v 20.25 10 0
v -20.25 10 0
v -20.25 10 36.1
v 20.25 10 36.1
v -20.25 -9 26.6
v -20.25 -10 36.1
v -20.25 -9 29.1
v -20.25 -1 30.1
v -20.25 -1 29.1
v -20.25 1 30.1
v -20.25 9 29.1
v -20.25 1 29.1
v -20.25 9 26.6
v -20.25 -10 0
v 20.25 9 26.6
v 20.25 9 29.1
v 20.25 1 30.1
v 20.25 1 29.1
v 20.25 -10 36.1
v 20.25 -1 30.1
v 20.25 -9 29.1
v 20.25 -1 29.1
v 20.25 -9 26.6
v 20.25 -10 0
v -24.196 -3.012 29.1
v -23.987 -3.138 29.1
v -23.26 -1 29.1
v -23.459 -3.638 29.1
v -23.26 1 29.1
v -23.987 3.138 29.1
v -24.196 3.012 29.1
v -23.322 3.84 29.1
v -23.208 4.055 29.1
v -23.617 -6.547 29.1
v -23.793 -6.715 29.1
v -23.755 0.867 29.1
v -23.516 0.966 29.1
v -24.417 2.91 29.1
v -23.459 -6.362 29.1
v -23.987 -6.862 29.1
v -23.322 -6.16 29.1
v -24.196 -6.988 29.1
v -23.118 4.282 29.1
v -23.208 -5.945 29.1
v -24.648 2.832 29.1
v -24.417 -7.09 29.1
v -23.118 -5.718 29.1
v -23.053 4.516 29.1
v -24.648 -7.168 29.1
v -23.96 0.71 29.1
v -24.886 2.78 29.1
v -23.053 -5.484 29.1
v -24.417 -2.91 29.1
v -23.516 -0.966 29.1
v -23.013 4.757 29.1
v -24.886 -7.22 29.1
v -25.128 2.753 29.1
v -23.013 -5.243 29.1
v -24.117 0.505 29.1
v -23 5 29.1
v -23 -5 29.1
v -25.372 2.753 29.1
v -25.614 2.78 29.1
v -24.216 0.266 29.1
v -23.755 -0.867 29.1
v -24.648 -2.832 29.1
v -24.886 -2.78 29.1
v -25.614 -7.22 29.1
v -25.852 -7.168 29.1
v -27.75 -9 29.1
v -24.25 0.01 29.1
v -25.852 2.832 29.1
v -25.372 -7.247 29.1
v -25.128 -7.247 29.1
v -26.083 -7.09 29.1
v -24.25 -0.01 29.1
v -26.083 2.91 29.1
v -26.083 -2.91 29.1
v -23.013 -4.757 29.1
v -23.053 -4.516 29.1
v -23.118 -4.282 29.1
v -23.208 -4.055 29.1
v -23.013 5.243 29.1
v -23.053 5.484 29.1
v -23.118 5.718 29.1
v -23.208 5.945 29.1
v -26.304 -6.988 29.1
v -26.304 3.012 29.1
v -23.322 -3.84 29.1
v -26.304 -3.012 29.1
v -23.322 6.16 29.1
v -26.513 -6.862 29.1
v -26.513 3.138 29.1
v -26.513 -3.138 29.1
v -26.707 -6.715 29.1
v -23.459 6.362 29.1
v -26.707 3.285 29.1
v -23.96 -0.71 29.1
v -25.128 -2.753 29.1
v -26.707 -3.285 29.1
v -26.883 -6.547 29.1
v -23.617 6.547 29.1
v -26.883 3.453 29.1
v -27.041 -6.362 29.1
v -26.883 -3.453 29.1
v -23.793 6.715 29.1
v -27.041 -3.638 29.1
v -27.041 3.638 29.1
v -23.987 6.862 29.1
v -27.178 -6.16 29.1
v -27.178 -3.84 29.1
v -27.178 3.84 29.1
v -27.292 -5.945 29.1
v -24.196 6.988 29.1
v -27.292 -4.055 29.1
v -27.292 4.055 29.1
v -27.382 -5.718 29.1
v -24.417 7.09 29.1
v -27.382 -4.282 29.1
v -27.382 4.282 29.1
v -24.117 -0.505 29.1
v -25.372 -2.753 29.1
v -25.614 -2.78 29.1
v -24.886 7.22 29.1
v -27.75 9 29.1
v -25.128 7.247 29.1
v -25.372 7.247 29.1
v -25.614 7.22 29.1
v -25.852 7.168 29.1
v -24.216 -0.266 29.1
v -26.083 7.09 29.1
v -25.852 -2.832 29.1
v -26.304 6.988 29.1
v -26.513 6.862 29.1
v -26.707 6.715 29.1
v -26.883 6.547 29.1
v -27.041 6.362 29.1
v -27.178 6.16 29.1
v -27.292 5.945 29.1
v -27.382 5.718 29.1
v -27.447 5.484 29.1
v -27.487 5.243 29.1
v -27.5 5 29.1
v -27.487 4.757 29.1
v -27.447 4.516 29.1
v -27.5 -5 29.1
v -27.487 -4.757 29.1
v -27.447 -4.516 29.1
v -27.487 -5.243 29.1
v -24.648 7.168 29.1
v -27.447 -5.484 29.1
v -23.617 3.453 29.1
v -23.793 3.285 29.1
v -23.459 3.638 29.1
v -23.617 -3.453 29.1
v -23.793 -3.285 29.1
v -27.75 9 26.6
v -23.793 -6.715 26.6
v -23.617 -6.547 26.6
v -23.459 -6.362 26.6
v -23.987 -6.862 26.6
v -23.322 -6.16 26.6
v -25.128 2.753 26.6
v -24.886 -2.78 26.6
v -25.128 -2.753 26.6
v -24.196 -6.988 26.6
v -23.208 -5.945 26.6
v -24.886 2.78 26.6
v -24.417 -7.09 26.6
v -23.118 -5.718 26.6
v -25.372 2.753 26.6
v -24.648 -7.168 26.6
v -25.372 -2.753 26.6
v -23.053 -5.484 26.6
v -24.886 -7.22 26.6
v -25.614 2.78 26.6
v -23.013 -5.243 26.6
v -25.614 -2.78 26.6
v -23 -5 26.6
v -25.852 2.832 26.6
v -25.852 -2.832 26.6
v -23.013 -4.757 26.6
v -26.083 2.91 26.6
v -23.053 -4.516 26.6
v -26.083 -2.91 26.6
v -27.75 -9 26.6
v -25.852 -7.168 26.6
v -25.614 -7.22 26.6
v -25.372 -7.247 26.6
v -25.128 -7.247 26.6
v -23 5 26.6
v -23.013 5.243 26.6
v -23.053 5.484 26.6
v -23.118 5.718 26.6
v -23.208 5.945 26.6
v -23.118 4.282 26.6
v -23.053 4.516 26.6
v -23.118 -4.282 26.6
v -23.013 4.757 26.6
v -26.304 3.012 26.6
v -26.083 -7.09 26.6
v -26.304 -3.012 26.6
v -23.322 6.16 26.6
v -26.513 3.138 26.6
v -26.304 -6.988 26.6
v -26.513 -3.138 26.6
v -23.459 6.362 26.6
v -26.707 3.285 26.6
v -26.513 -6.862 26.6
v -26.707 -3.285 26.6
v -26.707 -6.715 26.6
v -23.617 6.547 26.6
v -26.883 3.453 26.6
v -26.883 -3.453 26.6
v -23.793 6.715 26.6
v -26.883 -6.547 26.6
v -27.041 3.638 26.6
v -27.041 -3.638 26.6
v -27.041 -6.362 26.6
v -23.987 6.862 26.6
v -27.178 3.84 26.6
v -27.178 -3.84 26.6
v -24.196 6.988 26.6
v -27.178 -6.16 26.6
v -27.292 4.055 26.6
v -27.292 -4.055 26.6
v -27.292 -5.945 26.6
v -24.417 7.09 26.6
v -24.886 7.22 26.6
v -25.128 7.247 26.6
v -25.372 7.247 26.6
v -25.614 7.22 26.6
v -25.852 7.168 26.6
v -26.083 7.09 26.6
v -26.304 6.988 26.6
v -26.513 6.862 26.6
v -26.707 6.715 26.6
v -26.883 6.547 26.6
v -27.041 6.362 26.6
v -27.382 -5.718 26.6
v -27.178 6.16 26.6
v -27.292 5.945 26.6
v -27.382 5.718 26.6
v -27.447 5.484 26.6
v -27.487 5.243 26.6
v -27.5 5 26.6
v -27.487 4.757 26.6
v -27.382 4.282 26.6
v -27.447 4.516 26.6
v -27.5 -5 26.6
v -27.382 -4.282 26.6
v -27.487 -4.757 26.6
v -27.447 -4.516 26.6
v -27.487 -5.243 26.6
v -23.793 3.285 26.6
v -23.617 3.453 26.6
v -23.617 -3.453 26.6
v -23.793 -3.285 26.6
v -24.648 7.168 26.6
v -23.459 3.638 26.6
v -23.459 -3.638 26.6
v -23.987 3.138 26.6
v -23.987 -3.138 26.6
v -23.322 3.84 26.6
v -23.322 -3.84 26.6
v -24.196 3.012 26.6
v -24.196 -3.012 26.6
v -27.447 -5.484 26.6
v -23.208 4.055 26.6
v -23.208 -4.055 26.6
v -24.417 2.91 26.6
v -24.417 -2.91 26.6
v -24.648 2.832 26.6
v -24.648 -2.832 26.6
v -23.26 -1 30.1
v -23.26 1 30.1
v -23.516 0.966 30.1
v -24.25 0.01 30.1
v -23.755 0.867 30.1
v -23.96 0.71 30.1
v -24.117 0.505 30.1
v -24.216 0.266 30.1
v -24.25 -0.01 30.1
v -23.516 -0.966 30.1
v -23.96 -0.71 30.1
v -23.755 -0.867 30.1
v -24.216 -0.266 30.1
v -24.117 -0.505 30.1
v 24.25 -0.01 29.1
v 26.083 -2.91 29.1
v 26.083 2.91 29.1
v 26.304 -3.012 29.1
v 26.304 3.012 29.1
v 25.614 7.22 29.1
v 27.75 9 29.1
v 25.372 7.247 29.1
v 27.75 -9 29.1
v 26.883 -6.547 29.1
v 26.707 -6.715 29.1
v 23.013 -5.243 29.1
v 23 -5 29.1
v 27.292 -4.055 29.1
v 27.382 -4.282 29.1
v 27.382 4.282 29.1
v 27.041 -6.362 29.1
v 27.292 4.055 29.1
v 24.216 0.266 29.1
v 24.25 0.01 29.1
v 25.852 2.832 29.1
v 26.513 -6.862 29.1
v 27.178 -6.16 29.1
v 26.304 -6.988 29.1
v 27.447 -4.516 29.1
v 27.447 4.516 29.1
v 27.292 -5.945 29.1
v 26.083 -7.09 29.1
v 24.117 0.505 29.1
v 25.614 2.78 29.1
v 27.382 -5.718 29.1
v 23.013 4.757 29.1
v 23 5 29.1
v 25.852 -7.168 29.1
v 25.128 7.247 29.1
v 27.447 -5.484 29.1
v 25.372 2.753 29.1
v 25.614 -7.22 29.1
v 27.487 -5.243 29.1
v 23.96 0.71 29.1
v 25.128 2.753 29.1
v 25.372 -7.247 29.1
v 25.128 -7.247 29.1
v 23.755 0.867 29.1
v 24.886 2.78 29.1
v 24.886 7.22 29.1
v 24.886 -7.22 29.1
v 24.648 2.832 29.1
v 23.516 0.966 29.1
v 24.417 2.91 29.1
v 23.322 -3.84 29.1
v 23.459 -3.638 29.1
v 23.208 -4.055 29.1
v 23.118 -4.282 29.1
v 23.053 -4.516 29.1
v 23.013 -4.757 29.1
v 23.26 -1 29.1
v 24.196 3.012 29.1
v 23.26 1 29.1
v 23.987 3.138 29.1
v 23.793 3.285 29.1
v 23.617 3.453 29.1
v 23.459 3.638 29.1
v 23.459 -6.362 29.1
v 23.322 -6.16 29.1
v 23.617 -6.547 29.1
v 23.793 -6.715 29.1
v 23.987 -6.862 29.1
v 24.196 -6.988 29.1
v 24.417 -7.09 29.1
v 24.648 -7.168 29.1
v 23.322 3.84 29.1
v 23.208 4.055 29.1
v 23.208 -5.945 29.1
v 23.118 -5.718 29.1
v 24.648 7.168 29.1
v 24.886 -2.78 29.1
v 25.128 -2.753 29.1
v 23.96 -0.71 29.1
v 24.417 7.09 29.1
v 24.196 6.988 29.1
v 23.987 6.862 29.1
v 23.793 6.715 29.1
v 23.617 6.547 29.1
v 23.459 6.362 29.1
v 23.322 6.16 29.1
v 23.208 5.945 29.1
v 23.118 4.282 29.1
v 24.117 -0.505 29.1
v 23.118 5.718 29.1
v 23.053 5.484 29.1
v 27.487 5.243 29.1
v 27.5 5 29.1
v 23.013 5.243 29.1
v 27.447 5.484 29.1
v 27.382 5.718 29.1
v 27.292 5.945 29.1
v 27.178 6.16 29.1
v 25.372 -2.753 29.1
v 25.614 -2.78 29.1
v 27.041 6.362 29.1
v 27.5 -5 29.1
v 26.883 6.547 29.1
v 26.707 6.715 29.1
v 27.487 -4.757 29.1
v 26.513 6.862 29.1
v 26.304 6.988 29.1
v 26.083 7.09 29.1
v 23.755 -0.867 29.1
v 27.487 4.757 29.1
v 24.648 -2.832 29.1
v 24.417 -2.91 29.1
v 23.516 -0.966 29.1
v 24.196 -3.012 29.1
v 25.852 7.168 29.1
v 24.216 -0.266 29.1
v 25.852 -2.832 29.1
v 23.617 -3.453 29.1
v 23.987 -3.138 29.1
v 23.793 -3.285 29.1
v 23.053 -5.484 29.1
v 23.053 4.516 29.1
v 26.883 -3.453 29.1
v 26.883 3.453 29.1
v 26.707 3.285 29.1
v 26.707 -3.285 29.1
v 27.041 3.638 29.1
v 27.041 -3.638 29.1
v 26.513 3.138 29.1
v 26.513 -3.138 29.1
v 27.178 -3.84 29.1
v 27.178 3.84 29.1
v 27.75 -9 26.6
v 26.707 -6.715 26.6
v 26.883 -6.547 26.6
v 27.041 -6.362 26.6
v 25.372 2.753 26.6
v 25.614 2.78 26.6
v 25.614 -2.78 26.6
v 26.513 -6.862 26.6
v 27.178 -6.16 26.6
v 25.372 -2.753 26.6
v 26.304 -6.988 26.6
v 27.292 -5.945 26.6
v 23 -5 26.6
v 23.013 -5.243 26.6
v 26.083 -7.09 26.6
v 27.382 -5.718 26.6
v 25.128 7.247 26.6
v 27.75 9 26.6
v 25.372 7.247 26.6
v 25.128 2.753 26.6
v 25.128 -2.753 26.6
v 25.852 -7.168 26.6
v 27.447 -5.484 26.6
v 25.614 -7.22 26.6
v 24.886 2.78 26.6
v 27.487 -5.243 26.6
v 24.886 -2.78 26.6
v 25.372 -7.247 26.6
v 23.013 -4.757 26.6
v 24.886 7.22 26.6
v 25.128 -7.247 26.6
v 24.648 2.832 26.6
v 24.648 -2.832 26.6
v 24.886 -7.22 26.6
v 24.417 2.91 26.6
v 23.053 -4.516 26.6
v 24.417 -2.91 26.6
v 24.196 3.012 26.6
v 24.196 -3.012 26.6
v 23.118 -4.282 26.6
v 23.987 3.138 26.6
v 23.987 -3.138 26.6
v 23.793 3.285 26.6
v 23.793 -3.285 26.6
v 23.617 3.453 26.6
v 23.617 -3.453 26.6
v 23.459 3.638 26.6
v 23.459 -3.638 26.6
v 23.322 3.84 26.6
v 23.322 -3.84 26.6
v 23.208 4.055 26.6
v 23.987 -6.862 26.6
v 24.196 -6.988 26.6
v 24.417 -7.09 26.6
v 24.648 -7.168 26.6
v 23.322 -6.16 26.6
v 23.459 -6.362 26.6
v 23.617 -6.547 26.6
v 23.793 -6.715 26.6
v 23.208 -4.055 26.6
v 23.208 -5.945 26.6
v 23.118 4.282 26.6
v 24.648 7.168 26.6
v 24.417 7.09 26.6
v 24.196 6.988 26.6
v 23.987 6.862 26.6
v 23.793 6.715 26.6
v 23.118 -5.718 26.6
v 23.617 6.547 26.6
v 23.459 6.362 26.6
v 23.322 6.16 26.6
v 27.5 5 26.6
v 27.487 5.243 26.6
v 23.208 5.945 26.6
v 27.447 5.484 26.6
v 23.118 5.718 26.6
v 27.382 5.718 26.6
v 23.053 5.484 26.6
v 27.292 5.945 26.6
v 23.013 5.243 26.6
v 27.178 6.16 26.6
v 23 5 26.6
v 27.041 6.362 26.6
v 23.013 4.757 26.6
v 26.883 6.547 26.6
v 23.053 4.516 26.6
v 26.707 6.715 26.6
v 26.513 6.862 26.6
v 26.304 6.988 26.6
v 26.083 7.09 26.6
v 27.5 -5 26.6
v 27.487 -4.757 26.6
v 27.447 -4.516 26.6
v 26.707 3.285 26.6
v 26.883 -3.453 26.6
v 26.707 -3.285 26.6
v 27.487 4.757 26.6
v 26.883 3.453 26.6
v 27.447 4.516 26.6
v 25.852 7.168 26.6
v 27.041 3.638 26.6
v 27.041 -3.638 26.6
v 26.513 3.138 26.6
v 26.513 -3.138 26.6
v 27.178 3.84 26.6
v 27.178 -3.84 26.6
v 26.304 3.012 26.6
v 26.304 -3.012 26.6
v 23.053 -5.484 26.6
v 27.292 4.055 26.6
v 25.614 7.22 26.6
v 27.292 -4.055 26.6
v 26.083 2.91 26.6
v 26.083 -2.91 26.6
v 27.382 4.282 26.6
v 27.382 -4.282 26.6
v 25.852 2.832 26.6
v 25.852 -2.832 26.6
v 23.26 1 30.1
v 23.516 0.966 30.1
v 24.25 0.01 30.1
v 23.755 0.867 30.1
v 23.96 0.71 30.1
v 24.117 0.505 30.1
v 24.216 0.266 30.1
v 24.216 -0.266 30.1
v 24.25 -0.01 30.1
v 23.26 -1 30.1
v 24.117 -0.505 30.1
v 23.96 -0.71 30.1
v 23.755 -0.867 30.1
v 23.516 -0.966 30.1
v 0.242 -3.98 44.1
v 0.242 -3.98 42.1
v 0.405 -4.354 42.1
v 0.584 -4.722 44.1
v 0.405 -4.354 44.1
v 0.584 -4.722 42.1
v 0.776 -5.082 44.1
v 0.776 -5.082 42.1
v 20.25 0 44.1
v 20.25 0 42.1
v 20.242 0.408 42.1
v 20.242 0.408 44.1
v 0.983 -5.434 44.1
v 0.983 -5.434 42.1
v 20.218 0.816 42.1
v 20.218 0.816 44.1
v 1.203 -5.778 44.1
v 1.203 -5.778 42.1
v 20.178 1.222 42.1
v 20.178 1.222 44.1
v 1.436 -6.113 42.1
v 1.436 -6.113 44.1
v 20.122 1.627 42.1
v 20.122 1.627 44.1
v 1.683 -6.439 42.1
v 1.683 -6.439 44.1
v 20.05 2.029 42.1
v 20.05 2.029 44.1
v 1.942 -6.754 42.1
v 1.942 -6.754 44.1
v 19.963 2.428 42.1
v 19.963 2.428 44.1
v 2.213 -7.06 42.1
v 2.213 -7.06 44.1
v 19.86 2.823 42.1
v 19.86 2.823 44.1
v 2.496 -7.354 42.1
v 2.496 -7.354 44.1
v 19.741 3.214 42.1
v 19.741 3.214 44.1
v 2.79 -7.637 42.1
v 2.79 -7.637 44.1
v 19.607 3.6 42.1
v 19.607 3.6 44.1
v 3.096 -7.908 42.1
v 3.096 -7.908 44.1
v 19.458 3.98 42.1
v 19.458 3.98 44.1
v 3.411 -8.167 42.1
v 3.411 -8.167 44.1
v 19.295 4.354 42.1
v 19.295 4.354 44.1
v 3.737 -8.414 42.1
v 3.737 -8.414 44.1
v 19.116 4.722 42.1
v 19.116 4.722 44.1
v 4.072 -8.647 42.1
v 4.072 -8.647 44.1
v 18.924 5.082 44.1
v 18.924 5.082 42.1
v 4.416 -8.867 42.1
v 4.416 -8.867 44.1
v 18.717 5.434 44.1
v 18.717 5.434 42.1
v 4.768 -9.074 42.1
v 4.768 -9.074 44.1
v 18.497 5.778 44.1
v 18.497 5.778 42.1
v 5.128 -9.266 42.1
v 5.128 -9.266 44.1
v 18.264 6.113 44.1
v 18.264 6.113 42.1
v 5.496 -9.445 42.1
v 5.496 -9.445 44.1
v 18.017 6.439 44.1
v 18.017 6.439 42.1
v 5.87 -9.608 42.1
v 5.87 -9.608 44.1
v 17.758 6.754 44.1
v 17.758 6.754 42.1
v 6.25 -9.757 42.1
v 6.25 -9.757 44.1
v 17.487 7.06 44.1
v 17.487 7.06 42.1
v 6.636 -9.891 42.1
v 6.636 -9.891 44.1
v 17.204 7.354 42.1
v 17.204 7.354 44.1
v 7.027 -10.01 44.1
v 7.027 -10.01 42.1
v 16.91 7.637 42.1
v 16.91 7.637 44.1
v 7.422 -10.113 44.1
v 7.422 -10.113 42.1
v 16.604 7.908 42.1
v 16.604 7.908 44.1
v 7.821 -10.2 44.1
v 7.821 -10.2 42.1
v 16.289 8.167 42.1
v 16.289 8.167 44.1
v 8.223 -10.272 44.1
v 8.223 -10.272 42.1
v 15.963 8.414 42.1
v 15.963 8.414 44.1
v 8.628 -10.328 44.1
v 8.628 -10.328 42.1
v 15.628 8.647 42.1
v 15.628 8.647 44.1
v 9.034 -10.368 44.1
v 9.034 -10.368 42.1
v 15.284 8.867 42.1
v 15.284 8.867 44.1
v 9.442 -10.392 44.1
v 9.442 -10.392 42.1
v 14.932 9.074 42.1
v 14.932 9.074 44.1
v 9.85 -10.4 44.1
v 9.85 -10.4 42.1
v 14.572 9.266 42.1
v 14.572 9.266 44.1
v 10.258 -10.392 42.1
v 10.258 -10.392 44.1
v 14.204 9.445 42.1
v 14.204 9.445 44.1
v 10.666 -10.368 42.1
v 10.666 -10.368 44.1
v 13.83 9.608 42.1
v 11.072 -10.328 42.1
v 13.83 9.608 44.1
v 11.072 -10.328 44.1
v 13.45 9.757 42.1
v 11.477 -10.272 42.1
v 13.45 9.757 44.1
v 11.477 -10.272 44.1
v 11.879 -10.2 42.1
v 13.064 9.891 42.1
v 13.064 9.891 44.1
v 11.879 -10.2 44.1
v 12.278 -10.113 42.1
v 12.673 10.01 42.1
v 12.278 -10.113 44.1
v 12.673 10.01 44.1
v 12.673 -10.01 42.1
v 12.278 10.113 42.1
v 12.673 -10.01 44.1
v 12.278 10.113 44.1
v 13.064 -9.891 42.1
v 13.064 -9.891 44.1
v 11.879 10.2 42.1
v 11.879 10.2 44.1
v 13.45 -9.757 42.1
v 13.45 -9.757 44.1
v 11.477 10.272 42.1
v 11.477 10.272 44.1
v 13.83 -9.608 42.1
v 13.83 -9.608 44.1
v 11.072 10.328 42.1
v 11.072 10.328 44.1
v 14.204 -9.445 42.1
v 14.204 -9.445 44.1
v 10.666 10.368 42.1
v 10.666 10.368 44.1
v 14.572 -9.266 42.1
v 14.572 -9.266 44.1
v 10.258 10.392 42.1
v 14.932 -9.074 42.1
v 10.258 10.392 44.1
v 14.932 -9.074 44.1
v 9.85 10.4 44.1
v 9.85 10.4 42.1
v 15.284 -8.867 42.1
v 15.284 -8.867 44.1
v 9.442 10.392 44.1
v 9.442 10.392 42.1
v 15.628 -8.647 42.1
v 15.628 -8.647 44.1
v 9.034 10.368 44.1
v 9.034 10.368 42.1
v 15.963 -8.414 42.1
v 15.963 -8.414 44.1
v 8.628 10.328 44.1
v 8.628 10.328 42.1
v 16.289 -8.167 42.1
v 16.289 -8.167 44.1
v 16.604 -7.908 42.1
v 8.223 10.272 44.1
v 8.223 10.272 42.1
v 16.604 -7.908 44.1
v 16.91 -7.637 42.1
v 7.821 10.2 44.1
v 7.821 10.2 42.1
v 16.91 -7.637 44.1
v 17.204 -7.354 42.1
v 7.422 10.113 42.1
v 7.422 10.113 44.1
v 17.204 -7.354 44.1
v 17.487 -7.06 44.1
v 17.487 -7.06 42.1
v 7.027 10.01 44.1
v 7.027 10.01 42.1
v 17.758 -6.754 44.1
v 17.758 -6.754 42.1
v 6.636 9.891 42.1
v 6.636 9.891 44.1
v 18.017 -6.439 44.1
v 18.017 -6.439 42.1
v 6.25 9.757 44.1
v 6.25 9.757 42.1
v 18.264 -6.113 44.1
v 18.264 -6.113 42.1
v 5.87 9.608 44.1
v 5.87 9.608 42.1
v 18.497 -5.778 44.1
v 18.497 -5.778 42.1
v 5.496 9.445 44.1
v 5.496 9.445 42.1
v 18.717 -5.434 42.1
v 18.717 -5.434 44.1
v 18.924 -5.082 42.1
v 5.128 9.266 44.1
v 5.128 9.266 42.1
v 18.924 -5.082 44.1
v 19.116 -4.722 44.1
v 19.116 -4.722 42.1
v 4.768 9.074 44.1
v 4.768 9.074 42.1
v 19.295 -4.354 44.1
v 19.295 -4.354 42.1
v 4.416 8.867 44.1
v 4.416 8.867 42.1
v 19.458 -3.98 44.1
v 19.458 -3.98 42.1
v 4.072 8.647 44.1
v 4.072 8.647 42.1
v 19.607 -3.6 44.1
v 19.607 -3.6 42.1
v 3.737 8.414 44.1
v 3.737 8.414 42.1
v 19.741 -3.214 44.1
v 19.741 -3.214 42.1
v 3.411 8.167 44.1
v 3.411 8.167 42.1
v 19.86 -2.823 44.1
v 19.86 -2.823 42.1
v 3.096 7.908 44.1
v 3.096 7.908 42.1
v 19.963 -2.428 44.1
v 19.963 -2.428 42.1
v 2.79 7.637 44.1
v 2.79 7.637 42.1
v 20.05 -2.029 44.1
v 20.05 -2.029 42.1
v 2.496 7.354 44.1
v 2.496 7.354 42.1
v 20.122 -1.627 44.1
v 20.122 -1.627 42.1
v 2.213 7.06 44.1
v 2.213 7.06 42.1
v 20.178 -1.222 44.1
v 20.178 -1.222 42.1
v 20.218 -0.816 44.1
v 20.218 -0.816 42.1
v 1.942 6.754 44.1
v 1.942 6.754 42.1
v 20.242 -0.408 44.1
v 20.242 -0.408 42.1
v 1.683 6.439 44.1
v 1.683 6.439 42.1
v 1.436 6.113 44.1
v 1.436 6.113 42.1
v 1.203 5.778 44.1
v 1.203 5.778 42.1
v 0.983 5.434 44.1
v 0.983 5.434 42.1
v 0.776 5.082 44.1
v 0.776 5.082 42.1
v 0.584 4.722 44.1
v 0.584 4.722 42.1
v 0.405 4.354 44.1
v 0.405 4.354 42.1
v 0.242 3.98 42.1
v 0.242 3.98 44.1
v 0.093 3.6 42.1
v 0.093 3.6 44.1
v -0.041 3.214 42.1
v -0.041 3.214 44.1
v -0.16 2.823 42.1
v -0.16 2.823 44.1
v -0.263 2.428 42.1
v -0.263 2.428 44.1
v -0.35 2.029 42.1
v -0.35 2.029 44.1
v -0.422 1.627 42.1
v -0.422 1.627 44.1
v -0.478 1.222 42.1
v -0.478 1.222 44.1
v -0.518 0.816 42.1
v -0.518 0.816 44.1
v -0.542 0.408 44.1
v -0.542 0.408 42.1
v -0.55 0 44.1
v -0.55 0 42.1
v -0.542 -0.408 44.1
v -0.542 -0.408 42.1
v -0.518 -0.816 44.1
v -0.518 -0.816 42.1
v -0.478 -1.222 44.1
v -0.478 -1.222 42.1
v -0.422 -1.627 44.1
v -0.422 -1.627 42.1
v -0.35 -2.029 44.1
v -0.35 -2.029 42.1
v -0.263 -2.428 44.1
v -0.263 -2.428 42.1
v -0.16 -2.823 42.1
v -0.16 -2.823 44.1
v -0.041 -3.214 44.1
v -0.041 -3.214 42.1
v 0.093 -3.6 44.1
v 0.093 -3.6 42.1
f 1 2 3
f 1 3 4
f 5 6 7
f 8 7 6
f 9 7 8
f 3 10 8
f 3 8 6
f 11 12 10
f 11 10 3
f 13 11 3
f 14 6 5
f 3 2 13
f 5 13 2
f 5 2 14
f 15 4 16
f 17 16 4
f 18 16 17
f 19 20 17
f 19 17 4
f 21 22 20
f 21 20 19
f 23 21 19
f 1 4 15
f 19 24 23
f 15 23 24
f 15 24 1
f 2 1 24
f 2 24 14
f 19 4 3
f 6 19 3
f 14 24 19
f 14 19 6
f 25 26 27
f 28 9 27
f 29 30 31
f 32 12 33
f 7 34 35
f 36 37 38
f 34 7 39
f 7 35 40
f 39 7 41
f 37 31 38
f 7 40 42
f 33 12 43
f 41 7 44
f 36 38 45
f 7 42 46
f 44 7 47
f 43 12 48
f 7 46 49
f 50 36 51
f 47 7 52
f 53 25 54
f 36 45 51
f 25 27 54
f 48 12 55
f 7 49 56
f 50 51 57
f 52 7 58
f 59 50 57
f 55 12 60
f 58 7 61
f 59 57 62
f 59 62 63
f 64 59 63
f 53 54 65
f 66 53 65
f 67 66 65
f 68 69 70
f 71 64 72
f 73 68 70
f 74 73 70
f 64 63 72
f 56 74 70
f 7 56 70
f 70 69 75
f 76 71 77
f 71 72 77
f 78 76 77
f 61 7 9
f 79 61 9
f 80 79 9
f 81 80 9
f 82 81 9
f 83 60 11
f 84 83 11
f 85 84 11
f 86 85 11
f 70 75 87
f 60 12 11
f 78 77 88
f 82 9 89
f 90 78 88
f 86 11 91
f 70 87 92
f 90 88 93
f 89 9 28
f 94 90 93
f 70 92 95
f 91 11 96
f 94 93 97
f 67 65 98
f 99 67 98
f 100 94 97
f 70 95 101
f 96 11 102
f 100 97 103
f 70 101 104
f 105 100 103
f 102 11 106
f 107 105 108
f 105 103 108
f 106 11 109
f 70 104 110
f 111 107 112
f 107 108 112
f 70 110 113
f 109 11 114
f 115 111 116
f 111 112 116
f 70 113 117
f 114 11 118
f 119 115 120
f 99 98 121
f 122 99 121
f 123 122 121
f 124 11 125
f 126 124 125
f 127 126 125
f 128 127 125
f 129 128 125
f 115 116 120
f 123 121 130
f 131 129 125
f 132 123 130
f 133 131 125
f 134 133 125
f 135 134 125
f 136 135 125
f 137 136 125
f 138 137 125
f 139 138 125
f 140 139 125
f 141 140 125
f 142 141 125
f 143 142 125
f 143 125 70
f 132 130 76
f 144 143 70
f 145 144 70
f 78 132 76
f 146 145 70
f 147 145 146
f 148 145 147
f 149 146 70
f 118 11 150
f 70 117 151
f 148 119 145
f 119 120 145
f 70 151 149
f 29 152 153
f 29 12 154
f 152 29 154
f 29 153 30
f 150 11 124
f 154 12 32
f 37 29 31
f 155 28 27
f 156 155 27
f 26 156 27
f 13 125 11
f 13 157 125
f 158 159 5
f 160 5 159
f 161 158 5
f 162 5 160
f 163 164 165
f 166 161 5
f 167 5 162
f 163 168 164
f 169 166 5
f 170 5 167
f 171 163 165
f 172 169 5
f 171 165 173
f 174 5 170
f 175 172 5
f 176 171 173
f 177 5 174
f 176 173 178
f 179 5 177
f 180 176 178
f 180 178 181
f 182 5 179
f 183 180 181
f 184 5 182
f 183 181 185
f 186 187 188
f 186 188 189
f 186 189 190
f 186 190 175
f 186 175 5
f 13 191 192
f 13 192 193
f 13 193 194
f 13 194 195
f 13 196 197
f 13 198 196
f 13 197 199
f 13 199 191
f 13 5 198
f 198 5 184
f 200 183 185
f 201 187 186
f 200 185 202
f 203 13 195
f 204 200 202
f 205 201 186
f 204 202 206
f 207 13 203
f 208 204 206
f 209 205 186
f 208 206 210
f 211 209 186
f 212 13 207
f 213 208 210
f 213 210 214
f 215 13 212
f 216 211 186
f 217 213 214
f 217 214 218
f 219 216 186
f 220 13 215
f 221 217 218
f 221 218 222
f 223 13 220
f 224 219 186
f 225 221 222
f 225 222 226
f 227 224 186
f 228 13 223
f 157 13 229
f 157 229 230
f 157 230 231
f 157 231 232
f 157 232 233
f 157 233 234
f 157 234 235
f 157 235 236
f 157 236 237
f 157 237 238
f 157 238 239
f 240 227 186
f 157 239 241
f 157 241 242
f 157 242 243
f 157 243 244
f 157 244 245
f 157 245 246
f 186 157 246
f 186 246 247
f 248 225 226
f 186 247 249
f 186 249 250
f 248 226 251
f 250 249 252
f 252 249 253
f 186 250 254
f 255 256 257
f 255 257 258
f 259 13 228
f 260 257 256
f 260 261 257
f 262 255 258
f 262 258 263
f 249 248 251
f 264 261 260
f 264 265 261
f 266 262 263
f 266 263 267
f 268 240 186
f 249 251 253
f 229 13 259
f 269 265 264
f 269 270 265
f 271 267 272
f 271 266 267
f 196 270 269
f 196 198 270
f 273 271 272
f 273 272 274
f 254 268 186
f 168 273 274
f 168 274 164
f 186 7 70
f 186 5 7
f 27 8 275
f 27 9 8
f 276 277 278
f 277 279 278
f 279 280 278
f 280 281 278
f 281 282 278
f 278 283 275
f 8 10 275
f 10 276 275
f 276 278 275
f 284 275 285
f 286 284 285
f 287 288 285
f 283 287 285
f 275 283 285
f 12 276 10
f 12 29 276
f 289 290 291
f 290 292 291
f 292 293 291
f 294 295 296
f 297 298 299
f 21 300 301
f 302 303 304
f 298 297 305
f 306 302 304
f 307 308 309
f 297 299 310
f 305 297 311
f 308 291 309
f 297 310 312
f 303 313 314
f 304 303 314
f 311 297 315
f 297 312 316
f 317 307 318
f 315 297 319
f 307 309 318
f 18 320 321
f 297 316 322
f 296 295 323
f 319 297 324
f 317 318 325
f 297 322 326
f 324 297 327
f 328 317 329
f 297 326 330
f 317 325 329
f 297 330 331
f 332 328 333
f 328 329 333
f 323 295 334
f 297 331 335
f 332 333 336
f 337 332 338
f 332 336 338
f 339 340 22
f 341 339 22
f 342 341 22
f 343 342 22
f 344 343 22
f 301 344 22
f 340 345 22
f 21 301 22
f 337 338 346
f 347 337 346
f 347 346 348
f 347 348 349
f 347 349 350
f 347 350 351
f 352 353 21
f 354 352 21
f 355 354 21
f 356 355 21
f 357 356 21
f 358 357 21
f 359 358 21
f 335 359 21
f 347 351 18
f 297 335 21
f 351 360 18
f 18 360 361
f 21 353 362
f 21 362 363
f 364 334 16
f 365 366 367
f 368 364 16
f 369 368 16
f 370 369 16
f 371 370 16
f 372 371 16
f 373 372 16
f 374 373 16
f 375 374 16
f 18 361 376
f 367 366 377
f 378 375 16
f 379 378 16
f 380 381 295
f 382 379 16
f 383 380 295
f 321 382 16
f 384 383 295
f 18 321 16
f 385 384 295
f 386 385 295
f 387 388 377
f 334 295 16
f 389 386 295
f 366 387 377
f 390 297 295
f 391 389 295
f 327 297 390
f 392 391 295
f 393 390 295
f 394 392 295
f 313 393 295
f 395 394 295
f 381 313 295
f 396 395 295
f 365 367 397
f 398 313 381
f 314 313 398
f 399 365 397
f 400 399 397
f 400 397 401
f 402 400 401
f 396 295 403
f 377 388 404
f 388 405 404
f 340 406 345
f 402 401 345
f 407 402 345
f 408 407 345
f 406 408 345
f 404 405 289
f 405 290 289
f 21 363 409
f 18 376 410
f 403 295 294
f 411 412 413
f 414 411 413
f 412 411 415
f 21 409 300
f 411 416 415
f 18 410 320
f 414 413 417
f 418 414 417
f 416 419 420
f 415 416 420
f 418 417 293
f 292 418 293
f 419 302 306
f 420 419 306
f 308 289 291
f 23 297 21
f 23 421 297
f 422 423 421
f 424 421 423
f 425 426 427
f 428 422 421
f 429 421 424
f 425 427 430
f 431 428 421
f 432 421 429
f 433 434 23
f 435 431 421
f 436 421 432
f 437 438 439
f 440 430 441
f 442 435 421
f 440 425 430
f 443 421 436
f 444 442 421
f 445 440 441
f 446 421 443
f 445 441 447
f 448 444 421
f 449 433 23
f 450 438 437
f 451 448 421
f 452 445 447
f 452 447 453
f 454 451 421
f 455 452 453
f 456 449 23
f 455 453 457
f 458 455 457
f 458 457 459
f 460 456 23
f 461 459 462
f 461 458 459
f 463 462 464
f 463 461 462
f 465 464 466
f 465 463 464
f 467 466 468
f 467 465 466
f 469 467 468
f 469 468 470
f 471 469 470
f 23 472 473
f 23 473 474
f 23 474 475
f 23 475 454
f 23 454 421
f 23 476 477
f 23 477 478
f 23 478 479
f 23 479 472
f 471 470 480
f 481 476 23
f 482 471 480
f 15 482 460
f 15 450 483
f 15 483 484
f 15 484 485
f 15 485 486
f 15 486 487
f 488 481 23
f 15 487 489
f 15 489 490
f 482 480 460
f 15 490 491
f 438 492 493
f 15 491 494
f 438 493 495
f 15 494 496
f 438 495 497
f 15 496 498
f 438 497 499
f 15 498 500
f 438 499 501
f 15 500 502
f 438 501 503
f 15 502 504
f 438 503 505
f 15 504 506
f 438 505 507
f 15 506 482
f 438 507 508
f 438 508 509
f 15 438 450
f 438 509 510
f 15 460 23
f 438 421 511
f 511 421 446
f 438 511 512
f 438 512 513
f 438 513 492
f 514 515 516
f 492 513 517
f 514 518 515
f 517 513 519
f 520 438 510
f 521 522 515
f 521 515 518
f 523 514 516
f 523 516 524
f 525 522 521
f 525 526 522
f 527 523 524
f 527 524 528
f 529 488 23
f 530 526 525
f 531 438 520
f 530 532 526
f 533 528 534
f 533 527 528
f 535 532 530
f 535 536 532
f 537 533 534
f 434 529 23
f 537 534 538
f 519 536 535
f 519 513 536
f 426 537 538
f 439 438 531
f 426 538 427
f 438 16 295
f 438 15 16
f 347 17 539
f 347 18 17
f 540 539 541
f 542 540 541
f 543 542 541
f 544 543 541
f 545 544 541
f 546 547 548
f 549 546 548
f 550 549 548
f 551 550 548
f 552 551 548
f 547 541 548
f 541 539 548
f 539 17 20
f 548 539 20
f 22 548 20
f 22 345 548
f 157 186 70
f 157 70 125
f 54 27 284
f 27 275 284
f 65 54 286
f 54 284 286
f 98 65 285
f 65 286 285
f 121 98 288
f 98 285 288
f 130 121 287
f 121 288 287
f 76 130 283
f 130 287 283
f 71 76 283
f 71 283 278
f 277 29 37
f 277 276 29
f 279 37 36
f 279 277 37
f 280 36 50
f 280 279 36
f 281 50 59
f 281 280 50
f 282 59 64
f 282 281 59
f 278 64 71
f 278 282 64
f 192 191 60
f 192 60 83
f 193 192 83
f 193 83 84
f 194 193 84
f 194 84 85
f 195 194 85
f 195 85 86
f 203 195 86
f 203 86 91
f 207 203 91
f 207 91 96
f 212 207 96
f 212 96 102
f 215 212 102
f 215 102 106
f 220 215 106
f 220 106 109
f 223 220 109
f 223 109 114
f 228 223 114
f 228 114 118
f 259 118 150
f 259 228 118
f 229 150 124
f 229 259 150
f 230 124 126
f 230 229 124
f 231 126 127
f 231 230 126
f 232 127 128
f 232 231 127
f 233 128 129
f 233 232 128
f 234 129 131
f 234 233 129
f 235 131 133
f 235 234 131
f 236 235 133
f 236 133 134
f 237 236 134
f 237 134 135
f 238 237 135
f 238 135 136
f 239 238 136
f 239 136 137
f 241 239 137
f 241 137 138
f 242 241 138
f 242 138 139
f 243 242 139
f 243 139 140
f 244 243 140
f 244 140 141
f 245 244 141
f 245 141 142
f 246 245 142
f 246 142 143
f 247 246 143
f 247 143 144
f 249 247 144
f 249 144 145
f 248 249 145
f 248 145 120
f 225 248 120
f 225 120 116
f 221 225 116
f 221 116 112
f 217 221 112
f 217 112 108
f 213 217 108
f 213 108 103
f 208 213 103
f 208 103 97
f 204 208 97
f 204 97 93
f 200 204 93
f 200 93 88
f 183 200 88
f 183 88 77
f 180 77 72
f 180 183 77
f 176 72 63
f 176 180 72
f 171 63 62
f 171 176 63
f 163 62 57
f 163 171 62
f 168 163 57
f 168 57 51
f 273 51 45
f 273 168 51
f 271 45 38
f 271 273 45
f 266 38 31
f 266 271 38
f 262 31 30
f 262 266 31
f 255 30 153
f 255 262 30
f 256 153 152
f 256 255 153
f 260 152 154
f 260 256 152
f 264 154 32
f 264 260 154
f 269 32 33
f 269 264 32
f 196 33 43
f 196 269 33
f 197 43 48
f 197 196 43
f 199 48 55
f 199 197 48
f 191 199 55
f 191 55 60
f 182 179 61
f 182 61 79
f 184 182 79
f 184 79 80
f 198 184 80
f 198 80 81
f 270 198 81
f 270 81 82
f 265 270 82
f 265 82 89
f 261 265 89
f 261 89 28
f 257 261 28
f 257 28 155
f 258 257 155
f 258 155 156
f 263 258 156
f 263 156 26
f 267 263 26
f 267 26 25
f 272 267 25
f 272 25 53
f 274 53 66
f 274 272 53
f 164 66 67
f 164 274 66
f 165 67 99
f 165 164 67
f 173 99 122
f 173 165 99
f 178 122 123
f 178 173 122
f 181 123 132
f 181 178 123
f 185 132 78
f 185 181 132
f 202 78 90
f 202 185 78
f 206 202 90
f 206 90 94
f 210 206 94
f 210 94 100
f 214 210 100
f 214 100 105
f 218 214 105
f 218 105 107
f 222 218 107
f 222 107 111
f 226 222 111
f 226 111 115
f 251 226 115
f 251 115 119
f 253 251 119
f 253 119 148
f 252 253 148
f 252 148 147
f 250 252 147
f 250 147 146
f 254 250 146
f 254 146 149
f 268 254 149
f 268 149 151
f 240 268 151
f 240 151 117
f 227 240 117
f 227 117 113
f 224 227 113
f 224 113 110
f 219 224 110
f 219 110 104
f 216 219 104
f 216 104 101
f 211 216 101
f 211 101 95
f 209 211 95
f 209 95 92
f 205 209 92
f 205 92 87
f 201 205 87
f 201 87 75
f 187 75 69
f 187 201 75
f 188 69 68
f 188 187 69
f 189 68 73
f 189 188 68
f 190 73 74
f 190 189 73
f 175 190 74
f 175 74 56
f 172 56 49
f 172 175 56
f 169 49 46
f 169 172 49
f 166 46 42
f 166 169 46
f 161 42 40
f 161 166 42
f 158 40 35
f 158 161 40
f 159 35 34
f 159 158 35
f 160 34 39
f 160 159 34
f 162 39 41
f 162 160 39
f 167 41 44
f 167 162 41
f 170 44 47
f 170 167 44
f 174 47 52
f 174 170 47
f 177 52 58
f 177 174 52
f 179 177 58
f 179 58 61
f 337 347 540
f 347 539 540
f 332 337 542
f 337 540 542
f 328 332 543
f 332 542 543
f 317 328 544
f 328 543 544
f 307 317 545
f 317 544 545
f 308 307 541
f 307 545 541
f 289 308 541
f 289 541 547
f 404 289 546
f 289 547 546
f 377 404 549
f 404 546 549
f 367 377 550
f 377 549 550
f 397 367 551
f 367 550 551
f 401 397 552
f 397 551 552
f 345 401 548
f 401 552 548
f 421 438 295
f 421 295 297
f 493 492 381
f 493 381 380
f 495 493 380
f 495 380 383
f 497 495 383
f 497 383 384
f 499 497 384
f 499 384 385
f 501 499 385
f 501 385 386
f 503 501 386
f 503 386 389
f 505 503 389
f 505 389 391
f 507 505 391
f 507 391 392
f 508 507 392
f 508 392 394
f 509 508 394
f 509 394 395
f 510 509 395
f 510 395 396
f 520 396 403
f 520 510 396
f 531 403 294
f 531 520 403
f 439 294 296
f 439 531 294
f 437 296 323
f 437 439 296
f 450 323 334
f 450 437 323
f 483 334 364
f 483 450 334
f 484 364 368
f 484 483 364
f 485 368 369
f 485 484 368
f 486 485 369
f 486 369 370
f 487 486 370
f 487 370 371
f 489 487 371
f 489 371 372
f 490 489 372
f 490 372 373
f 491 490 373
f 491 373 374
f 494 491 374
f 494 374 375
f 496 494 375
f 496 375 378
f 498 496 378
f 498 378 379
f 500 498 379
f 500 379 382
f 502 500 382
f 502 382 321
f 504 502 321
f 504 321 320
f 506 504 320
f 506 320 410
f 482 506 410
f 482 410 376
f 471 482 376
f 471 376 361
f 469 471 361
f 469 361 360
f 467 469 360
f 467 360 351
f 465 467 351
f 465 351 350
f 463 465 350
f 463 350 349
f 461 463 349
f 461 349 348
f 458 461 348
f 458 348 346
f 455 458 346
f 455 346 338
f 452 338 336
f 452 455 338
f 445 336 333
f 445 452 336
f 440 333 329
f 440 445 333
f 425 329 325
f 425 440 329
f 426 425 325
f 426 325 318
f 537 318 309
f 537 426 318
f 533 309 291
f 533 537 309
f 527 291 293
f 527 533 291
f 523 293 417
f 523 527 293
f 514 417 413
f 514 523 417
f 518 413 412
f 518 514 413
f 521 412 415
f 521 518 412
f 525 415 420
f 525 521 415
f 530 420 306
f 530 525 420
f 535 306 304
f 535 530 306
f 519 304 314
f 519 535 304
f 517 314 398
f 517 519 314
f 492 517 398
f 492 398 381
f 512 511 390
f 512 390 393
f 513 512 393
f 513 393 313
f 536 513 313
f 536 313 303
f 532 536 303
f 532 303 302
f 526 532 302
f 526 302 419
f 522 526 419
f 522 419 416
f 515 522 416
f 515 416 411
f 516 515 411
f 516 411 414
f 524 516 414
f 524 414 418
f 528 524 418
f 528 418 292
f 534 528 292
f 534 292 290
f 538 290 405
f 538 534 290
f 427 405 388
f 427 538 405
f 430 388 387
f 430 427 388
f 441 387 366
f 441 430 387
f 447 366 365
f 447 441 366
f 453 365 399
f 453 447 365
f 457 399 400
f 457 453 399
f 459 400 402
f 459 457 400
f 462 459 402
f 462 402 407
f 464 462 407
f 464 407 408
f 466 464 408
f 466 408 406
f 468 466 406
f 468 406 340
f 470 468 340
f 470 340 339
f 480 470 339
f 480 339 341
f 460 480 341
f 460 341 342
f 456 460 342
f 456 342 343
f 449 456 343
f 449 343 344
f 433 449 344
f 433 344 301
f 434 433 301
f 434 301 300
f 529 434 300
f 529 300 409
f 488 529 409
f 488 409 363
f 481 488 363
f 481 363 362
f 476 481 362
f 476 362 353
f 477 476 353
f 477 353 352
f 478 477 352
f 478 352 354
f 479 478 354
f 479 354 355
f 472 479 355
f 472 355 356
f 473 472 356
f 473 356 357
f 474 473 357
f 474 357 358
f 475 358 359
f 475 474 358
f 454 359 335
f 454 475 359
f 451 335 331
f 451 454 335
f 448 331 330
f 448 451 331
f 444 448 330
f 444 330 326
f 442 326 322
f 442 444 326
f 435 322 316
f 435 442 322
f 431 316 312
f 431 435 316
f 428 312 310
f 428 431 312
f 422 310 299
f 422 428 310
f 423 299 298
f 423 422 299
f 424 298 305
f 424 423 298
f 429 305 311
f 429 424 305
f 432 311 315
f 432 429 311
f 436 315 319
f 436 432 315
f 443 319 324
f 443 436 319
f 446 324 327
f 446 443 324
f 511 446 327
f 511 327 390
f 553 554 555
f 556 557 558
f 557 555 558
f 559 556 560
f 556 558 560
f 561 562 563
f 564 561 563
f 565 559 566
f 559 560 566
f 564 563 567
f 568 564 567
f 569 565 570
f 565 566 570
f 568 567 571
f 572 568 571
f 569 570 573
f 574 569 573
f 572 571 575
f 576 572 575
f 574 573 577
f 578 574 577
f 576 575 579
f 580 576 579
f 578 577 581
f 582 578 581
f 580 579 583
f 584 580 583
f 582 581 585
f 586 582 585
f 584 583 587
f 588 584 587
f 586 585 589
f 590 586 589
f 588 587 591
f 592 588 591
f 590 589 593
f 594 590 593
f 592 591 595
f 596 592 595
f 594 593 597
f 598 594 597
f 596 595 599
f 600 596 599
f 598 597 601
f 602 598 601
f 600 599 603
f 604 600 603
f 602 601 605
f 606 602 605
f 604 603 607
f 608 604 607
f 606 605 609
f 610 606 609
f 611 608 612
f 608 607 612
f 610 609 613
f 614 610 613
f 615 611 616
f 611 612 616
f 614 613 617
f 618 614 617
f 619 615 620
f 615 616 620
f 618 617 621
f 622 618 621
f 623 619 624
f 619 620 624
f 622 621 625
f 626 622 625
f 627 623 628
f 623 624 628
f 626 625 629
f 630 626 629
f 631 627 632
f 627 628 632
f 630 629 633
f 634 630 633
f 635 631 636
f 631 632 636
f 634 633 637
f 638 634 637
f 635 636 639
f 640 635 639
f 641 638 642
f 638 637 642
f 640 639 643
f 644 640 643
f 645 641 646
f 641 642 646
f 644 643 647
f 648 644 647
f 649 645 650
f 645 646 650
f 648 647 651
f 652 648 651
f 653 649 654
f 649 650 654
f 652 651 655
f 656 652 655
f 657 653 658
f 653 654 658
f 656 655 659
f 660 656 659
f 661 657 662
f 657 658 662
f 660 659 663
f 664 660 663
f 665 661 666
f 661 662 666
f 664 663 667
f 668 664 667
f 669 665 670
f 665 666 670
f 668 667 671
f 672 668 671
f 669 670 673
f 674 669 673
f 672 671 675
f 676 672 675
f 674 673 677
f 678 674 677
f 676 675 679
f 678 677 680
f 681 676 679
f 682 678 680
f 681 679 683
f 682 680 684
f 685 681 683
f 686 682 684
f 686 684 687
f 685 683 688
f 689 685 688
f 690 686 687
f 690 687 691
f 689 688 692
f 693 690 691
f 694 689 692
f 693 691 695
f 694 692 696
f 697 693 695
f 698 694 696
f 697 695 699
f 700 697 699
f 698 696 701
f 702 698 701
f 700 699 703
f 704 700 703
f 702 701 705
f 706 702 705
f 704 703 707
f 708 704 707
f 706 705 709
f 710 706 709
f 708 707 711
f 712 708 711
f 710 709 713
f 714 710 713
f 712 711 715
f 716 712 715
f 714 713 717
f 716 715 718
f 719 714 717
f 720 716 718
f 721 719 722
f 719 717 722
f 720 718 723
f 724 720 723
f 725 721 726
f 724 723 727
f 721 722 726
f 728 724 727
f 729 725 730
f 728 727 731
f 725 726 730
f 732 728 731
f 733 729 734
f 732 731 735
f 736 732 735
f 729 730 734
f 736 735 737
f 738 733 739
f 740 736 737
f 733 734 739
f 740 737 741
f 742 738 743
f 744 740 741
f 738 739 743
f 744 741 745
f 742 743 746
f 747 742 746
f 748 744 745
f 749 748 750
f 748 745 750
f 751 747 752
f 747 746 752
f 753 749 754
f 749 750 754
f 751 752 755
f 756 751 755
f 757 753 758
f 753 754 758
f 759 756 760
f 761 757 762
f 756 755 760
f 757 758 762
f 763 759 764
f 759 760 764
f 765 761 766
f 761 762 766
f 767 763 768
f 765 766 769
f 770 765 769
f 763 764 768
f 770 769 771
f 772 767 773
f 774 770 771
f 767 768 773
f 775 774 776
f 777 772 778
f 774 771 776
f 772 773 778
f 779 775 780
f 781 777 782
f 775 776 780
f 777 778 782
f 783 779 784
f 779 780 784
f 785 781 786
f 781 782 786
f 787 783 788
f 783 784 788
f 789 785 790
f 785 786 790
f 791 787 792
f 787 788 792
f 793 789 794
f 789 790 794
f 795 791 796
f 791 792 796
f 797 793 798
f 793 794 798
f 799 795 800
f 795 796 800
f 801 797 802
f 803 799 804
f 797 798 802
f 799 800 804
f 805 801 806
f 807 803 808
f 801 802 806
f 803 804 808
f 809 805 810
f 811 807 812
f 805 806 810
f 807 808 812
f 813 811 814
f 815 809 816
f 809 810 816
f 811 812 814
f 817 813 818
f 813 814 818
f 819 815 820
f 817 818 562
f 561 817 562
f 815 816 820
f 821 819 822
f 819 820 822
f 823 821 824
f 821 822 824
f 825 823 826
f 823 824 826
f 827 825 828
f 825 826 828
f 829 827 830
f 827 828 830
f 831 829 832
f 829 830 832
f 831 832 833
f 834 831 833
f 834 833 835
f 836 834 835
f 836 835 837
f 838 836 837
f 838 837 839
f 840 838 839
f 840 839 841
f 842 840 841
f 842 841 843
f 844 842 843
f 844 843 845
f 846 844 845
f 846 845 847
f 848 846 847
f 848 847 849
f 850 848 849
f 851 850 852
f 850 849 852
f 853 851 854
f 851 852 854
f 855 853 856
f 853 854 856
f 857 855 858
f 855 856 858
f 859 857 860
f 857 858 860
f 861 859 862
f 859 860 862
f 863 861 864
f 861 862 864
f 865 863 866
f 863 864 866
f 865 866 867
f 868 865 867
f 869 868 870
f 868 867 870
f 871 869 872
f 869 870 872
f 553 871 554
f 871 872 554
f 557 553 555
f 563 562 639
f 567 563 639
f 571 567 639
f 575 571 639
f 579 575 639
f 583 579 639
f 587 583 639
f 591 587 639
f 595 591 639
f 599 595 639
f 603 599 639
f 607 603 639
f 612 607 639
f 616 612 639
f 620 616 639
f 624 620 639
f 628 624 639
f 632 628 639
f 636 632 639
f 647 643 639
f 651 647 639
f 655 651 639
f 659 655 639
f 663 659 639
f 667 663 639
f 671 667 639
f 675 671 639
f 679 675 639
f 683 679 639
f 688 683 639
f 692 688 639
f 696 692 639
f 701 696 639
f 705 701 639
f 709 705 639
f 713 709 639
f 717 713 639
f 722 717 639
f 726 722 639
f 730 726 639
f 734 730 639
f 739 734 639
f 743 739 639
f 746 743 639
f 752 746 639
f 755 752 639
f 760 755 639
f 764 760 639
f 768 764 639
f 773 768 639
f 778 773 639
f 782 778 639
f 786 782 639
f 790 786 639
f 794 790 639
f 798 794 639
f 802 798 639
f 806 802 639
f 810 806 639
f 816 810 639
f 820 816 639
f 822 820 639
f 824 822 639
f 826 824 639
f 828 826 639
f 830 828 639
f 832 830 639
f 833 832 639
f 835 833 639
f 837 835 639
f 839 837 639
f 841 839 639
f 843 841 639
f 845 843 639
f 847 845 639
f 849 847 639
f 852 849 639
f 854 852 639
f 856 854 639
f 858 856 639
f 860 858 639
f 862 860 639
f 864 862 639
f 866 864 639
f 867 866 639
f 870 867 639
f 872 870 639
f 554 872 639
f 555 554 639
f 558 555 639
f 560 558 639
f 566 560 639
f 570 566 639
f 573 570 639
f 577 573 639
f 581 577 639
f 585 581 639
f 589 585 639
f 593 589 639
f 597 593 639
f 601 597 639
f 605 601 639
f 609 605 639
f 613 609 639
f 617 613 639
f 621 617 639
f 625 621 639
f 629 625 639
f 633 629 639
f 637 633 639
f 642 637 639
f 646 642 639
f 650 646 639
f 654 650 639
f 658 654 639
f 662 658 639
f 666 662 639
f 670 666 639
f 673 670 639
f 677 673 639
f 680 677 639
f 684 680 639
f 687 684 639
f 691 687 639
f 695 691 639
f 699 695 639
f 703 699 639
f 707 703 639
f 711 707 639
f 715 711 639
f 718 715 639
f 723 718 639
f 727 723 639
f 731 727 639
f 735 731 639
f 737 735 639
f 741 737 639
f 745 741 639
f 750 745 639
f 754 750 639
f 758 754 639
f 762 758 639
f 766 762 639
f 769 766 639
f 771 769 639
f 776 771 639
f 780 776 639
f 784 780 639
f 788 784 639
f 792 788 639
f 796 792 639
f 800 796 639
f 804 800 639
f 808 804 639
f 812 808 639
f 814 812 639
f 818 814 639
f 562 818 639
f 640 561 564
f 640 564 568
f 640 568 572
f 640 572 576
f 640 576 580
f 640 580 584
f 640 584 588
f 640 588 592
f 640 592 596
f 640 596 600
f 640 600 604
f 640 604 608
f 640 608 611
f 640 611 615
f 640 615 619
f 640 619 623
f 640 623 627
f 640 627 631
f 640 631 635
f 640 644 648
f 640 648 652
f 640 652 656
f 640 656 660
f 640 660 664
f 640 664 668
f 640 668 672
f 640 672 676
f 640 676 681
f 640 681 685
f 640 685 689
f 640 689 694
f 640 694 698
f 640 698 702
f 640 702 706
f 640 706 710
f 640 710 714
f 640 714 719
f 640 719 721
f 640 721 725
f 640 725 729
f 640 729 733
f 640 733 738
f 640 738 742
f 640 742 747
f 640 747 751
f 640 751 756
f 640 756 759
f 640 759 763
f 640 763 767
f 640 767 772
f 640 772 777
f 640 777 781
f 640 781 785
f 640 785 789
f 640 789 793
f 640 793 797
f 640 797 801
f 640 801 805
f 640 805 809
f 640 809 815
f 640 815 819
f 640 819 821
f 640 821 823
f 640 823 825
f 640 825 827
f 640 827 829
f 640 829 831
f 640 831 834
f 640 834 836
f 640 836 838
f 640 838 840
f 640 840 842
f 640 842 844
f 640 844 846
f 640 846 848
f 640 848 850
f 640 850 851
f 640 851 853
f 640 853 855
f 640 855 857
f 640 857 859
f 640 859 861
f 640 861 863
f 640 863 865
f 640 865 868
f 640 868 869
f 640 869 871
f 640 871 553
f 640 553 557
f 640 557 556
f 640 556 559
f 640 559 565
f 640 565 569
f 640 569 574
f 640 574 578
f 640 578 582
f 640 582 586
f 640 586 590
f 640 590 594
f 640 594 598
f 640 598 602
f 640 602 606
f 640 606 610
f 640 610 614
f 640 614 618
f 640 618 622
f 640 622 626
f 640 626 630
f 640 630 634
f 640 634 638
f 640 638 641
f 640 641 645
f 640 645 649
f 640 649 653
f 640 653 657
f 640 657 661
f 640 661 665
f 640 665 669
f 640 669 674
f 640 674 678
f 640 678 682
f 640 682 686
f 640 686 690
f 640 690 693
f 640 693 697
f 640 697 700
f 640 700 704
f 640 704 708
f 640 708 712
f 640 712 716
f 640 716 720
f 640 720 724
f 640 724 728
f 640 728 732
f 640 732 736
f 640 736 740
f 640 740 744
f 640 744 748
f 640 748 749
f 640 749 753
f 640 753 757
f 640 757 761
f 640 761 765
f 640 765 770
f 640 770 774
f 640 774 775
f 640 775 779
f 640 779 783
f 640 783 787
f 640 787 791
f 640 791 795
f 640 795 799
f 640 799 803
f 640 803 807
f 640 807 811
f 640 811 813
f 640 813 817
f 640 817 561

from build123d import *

# Parameters (mm, degrees)
SKETCH001_W  = 55.5
SKETCH001_H  = 18
SKETCH001_R  = 2.25
PAD001_DEPTH = 2.5
SKETCH002_W  = 48.5
SKETCH002_H  = 2
PAD002_DEPTH = 1
FILLET_R     = 0.99
SKETCH003_R  = 10.4
PAD003_DEPTH = 2
SKETCH_W     = 40.5
SKETCH_H     = 20
PAD_DEPTH    = 36.1


with BuildPart() as pad001:
    # Sketch001 → Pad001 (new body)
    with BuildSketch(Plane.XY.offset(26.6)):
        Rectangle(SKETCH001_W, SKETCH001_H)
        with Locations((-25.25, 5)):
            Circle(SKETCH001_R, mode=Mode.SUBTRACT)
        with Locations((-25.25, -5)):
            Circle(SKETCH001_R, mode=Mode.SUBTRACT)
        with Locations((25.25, 5)):
            Circle(SKETCH001_R, mode=Mode.SUBTRACT)
        with Locations((25.25, -5)):
            Circle(SKETCH001_R, mode=Mode.SUBTRACT)
    extrude(amount=PAD001_DEPTH)


with BuildPart() as fillet_body:
    # Sketch002 → Pad002 (new body)
    with BuildSketch(Plane.XY.offset(29.1)):
        Rectangle(SKETCH002_W, SKETCH002_H)
    extrude(amount=PAD002_DEPTH)

    # Fillet
    fillet_edges = [fillet_body.edges().sort_by_distance(p)[0] for p in [
        (-24.25, -1, 29.6),
        (-24.25, 1, 29.6),
        (24.25, -1, 29.6),
        (24.25, 1, 29.6),
    ]]
    fillet(fillet_edges, radius=FILLET_R)


with BuildPart() as pad003:
    # Sketch003 → Pad003 (new body)
    with BuildSketch(Plane.XY.offset(42.1)):
        with Locations((9.85, 0)):
            Circle(SKETCH003_R)
    extrude(amount=PAD003_DEPTH)


with BuildPart() as fusion:
    # Sketch → Pad (new body)
    with BuildSketch(Plane.XY):
        Rectangle(SKETCH_W, SKETCH_H)
    extrude(amount=PAD_DEPTH)

    # Fusion: union Pad001, Fillet body, Pad003
    add(pad001.part)
    add(fillet_body.part)
    add(pad003.part)


solid = fusion.part
